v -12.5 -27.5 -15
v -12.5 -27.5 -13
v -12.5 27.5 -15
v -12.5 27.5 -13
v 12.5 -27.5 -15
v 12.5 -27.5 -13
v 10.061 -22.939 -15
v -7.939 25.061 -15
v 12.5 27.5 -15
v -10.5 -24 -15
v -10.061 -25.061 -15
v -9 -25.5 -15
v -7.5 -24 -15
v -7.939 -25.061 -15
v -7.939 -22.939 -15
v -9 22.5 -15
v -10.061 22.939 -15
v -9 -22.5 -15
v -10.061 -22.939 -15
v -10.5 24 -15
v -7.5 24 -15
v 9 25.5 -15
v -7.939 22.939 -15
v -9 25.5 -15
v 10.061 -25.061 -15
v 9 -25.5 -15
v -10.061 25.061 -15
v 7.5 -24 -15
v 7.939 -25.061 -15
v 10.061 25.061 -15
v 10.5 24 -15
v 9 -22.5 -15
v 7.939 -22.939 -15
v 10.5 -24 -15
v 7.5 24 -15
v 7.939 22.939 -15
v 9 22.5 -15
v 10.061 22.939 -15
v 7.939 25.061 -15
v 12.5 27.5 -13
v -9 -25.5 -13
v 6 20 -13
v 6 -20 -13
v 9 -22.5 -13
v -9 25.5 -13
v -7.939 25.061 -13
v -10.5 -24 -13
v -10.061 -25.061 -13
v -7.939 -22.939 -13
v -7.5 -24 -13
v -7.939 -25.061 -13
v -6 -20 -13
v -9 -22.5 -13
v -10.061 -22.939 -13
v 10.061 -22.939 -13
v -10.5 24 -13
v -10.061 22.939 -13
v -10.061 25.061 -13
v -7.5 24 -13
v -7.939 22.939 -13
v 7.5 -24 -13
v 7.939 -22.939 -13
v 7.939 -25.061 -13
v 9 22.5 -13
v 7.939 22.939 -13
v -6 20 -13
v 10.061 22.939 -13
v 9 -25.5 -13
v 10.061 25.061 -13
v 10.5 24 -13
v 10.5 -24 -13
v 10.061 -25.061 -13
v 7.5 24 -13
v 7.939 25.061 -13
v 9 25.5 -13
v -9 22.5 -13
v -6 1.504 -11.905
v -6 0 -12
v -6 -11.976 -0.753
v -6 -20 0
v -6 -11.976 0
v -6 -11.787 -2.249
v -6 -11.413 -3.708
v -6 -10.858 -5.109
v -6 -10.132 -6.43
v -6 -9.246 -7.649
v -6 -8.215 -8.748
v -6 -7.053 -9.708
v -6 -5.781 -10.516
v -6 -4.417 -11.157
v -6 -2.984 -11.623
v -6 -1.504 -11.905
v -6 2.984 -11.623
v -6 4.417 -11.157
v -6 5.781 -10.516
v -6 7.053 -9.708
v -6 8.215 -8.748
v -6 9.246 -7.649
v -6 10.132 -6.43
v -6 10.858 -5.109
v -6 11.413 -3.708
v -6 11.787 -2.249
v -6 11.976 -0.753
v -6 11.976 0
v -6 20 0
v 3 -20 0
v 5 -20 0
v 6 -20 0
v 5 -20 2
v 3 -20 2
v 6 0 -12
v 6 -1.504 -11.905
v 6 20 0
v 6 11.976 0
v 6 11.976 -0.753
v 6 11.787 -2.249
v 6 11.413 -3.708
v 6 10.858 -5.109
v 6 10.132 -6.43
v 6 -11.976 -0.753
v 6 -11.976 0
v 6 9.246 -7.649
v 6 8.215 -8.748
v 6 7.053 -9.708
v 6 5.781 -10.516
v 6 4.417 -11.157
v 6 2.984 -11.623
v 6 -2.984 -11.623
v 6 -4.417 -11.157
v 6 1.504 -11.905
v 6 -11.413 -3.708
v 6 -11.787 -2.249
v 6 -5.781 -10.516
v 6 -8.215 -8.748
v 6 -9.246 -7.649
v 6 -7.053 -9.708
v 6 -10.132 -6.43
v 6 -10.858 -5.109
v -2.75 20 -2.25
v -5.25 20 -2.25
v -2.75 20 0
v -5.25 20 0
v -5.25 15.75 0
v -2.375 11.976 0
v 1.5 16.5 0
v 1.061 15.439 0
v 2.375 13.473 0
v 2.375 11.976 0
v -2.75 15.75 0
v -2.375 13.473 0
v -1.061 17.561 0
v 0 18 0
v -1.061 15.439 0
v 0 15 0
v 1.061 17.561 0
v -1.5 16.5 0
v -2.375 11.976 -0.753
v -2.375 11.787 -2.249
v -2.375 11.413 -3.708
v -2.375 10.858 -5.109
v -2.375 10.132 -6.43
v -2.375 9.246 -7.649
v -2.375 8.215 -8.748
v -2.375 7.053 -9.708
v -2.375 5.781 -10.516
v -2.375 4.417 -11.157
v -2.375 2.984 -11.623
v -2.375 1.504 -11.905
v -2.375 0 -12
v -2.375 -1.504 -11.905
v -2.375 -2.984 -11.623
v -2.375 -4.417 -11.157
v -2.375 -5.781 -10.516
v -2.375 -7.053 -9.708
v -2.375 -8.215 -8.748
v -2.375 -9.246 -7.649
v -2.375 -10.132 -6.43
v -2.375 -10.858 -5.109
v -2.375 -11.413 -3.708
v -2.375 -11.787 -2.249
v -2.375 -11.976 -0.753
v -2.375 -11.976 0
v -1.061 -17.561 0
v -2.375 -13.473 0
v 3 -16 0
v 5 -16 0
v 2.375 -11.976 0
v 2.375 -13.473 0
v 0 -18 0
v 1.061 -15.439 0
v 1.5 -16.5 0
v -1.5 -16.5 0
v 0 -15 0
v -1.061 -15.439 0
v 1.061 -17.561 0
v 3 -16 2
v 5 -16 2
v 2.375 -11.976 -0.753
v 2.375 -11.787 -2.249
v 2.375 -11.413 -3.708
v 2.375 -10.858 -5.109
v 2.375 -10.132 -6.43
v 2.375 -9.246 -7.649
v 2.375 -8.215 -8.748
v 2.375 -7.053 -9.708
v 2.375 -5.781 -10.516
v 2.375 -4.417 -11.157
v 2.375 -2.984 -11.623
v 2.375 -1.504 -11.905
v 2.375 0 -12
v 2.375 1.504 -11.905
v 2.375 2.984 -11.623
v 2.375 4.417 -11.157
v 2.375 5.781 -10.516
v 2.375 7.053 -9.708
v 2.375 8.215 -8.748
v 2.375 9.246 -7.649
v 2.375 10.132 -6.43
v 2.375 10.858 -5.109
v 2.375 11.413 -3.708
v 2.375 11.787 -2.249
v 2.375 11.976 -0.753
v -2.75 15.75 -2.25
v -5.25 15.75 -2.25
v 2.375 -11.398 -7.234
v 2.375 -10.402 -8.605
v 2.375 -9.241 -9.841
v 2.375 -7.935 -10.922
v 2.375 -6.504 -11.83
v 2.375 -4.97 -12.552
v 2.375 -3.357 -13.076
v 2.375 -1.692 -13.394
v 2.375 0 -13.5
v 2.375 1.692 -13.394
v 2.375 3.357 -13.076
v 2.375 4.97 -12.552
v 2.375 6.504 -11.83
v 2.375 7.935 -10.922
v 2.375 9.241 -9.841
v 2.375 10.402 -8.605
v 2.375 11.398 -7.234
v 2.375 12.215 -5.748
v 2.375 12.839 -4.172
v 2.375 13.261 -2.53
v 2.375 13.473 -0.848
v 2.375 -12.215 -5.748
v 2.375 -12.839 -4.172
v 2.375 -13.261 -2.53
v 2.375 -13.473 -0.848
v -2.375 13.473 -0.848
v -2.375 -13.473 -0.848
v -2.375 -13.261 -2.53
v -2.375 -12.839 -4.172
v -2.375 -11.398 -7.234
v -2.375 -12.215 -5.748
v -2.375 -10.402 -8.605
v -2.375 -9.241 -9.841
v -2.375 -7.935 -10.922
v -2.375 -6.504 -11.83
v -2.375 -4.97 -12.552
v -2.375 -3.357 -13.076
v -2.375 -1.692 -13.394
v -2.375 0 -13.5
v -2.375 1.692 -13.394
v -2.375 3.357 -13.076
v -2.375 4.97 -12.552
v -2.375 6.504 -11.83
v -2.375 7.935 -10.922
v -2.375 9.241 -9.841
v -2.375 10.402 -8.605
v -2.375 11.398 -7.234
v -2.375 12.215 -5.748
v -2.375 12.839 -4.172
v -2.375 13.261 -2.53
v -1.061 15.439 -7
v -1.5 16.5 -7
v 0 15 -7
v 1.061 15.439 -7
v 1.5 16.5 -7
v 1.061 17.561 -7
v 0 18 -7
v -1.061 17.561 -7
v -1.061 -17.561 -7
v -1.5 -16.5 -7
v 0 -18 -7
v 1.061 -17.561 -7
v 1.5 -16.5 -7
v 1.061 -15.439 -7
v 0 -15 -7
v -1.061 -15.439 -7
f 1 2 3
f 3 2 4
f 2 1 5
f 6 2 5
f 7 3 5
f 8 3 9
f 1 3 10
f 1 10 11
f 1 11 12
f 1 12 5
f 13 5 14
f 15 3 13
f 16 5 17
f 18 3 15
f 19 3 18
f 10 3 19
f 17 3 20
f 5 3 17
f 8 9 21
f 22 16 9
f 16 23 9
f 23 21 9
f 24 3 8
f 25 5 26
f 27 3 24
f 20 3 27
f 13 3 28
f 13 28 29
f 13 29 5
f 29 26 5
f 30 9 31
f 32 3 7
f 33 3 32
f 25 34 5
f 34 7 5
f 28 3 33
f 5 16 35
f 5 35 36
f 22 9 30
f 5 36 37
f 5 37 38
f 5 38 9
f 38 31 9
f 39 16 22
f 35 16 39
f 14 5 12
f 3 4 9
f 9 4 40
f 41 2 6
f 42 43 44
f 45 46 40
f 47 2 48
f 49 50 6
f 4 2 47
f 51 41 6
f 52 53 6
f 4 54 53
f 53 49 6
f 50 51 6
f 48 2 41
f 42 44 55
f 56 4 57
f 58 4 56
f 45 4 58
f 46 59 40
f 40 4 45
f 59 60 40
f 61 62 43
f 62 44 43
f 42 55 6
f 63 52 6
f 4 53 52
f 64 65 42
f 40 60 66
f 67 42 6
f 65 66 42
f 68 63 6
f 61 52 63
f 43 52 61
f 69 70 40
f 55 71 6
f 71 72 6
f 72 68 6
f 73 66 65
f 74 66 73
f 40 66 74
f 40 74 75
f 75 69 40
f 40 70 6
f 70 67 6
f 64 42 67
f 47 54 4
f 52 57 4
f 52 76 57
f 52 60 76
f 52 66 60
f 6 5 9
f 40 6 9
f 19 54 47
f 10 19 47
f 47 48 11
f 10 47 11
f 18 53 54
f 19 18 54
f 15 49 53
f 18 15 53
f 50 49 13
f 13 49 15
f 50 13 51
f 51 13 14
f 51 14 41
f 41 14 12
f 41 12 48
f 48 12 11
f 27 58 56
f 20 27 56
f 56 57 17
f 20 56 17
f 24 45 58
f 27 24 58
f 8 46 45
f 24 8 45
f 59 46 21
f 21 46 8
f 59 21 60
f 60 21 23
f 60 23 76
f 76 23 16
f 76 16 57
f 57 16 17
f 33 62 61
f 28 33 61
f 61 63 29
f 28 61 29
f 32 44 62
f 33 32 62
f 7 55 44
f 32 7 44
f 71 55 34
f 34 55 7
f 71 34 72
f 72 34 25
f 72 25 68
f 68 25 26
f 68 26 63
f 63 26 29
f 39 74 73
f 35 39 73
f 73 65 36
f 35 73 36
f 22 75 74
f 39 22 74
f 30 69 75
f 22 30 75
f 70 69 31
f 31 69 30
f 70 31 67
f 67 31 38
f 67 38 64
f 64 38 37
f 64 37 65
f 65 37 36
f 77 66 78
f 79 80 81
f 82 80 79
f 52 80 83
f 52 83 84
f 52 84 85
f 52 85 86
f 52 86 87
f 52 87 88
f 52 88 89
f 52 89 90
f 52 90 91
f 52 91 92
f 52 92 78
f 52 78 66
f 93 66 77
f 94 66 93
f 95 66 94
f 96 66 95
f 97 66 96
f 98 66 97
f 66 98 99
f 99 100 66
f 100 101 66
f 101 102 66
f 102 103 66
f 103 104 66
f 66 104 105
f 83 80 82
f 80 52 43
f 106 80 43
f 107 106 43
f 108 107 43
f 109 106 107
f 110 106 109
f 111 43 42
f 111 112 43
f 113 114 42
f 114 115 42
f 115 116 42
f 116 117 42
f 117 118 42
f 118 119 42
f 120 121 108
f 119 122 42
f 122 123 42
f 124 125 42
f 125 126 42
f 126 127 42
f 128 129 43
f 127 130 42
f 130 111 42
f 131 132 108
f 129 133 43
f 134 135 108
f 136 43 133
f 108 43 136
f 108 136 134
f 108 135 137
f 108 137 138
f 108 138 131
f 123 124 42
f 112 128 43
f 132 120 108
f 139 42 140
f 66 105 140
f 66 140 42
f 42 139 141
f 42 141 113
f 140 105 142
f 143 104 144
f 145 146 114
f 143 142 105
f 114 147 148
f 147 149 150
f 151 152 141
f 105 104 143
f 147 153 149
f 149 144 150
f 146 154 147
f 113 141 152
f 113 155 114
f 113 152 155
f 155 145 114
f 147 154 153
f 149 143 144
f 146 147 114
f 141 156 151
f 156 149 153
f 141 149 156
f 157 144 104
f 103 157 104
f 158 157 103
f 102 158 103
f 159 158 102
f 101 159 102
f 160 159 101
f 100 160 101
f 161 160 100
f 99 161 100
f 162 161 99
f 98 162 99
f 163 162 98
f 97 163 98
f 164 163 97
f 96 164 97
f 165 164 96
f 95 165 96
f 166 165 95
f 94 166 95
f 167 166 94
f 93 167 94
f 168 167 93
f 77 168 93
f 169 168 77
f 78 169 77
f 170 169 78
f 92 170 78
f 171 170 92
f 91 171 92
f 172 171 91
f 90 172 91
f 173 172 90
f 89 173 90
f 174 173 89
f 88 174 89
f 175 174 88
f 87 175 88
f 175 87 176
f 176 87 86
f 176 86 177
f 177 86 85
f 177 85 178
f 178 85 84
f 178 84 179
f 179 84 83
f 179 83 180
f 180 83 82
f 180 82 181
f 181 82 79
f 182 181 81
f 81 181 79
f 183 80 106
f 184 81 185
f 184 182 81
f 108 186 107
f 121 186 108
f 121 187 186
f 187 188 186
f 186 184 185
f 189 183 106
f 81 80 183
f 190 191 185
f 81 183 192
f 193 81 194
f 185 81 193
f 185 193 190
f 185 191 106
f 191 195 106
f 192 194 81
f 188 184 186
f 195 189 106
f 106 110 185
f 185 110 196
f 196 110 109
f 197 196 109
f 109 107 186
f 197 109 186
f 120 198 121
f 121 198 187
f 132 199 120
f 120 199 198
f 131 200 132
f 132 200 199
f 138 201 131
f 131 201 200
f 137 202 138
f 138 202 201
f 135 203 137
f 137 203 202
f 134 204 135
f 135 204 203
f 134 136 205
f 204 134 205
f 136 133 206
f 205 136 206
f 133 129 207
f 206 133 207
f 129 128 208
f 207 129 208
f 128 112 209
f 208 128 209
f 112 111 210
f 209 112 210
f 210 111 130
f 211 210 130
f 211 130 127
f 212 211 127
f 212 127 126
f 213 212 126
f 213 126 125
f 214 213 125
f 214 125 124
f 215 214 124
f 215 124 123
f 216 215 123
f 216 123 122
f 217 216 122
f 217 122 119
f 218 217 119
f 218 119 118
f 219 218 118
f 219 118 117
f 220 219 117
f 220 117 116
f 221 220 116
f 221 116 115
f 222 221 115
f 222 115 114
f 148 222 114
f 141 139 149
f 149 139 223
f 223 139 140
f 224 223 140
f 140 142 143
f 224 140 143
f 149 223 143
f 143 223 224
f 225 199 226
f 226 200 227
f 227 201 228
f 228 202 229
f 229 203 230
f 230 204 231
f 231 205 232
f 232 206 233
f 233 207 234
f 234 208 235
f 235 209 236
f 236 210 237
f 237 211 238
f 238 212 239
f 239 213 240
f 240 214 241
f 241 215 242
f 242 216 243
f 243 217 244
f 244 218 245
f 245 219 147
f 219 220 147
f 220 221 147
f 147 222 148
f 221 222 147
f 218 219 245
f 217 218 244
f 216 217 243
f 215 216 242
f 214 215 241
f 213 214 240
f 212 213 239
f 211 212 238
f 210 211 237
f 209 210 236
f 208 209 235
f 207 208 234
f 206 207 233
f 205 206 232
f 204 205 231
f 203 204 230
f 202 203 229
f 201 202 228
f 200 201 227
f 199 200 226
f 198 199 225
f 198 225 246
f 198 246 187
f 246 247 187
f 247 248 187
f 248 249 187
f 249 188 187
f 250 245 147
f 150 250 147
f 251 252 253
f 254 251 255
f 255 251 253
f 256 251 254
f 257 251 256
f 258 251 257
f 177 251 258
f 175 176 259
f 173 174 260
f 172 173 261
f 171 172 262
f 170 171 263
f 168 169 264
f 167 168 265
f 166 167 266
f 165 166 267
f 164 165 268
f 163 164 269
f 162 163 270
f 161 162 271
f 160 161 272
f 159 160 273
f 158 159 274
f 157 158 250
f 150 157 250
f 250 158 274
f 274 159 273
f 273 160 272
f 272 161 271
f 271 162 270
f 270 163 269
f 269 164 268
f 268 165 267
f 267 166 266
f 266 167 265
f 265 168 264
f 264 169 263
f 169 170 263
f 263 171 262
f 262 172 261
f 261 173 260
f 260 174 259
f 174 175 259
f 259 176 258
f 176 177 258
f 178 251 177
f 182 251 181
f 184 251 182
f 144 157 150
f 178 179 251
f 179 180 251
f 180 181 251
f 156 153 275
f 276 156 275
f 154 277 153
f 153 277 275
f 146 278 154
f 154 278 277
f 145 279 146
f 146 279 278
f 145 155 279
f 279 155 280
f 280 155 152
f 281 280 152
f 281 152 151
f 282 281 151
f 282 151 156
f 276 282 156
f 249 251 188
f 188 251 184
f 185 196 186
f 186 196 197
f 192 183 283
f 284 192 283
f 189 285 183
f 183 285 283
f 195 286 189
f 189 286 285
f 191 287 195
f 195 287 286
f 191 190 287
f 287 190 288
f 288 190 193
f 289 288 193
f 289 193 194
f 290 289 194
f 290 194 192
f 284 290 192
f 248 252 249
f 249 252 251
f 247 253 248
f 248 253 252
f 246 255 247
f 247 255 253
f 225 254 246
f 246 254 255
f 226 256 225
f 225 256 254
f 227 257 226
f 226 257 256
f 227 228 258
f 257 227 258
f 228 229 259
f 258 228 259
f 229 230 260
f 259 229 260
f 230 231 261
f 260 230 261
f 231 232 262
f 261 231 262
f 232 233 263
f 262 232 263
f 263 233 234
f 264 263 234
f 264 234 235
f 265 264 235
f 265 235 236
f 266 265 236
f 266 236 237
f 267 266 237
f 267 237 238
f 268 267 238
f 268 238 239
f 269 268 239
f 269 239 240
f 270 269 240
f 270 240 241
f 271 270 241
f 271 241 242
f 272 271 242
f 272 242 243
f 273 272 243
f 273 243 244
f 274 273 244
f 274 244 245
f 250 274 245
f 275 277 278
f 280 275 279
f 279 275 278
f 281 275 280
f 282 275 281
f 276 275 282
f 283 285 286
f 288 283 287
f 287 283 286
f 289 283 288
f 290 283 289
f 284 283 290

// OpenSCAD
//use <write.scad>

module 532nmPassFilter(){
	rotate([0,90,0]) {
		cylinder(r=13.25, h=4.32,$fn=100,center=true);
	}
}

module 532nmPassFilterBottom(){
	difference(){
		//basePlate
		translate([0,0,-14]){
			color([0.8,1,.6]) cube(size=[25,55,2],center=true);	
		}
		//filterHole
		rotate([0,90,0]) {
			cylinder(r=13.5, h=4.75,$fn=50,center=true);
		}
		//screwHoles
		translate([9,24,-14]){
			 color([1,0,0]) cylinder(r=1.5,h=5,$fn=8,center=true);
		}
		translate([9,-24,-14]) {
			color([1,0,0]) cylinder(r=1.5,h=5,$fn=8,center=true);
		}
		translate([-9,24,-14]){
			color([1,0,0]) cylinder(r=1.5,h=5,$fn=8,center=true);
		}
		translate([-9,-24,-14]){
			color([1,0,0]) cylinder(r=1.5,h=5,$fn=8,center=true);
		}
	}
	difference(){
		//base
		translate([0,0,-7]){
			color([0.8,1,.6]) cube(size=[12,40,14],center=true);	
		}
		//filterHole
		translate([0,0,0]){
			rotate([0,90,0]) {
				cylinder(r=13.5, h=4.75,$fn=50,center=true);
			}
		}
		translate([0,0,0]){
			rotate([0,90,0]) {
				cylinder(r=12, h=15,$fn=50,center=true);
			}
		}
		//screwHoles
		translate([0,16.5,-3]){
			color([1,0,0]) cylinder(r=1.5,h=8,$fn=8,center=true);
		}
		translate([0,-16.5,-3]){
			color([1,0,0]) cylinder(r=1.5,h=8,$fn=8,center=true);
		}
		//keyNub_innie
		translate([-4,18,-1]){
			 cube(size=[2.5,4.5,2.5],center=true);
		}
	}
	//keyNub_outtie
	translate([4,-18,1]){
		cube(size=[2,4,2],center=true);
	}
}


translate([0,0,0]){
	532nmPassFilterBottom();
}

//532nmPassFilter();
